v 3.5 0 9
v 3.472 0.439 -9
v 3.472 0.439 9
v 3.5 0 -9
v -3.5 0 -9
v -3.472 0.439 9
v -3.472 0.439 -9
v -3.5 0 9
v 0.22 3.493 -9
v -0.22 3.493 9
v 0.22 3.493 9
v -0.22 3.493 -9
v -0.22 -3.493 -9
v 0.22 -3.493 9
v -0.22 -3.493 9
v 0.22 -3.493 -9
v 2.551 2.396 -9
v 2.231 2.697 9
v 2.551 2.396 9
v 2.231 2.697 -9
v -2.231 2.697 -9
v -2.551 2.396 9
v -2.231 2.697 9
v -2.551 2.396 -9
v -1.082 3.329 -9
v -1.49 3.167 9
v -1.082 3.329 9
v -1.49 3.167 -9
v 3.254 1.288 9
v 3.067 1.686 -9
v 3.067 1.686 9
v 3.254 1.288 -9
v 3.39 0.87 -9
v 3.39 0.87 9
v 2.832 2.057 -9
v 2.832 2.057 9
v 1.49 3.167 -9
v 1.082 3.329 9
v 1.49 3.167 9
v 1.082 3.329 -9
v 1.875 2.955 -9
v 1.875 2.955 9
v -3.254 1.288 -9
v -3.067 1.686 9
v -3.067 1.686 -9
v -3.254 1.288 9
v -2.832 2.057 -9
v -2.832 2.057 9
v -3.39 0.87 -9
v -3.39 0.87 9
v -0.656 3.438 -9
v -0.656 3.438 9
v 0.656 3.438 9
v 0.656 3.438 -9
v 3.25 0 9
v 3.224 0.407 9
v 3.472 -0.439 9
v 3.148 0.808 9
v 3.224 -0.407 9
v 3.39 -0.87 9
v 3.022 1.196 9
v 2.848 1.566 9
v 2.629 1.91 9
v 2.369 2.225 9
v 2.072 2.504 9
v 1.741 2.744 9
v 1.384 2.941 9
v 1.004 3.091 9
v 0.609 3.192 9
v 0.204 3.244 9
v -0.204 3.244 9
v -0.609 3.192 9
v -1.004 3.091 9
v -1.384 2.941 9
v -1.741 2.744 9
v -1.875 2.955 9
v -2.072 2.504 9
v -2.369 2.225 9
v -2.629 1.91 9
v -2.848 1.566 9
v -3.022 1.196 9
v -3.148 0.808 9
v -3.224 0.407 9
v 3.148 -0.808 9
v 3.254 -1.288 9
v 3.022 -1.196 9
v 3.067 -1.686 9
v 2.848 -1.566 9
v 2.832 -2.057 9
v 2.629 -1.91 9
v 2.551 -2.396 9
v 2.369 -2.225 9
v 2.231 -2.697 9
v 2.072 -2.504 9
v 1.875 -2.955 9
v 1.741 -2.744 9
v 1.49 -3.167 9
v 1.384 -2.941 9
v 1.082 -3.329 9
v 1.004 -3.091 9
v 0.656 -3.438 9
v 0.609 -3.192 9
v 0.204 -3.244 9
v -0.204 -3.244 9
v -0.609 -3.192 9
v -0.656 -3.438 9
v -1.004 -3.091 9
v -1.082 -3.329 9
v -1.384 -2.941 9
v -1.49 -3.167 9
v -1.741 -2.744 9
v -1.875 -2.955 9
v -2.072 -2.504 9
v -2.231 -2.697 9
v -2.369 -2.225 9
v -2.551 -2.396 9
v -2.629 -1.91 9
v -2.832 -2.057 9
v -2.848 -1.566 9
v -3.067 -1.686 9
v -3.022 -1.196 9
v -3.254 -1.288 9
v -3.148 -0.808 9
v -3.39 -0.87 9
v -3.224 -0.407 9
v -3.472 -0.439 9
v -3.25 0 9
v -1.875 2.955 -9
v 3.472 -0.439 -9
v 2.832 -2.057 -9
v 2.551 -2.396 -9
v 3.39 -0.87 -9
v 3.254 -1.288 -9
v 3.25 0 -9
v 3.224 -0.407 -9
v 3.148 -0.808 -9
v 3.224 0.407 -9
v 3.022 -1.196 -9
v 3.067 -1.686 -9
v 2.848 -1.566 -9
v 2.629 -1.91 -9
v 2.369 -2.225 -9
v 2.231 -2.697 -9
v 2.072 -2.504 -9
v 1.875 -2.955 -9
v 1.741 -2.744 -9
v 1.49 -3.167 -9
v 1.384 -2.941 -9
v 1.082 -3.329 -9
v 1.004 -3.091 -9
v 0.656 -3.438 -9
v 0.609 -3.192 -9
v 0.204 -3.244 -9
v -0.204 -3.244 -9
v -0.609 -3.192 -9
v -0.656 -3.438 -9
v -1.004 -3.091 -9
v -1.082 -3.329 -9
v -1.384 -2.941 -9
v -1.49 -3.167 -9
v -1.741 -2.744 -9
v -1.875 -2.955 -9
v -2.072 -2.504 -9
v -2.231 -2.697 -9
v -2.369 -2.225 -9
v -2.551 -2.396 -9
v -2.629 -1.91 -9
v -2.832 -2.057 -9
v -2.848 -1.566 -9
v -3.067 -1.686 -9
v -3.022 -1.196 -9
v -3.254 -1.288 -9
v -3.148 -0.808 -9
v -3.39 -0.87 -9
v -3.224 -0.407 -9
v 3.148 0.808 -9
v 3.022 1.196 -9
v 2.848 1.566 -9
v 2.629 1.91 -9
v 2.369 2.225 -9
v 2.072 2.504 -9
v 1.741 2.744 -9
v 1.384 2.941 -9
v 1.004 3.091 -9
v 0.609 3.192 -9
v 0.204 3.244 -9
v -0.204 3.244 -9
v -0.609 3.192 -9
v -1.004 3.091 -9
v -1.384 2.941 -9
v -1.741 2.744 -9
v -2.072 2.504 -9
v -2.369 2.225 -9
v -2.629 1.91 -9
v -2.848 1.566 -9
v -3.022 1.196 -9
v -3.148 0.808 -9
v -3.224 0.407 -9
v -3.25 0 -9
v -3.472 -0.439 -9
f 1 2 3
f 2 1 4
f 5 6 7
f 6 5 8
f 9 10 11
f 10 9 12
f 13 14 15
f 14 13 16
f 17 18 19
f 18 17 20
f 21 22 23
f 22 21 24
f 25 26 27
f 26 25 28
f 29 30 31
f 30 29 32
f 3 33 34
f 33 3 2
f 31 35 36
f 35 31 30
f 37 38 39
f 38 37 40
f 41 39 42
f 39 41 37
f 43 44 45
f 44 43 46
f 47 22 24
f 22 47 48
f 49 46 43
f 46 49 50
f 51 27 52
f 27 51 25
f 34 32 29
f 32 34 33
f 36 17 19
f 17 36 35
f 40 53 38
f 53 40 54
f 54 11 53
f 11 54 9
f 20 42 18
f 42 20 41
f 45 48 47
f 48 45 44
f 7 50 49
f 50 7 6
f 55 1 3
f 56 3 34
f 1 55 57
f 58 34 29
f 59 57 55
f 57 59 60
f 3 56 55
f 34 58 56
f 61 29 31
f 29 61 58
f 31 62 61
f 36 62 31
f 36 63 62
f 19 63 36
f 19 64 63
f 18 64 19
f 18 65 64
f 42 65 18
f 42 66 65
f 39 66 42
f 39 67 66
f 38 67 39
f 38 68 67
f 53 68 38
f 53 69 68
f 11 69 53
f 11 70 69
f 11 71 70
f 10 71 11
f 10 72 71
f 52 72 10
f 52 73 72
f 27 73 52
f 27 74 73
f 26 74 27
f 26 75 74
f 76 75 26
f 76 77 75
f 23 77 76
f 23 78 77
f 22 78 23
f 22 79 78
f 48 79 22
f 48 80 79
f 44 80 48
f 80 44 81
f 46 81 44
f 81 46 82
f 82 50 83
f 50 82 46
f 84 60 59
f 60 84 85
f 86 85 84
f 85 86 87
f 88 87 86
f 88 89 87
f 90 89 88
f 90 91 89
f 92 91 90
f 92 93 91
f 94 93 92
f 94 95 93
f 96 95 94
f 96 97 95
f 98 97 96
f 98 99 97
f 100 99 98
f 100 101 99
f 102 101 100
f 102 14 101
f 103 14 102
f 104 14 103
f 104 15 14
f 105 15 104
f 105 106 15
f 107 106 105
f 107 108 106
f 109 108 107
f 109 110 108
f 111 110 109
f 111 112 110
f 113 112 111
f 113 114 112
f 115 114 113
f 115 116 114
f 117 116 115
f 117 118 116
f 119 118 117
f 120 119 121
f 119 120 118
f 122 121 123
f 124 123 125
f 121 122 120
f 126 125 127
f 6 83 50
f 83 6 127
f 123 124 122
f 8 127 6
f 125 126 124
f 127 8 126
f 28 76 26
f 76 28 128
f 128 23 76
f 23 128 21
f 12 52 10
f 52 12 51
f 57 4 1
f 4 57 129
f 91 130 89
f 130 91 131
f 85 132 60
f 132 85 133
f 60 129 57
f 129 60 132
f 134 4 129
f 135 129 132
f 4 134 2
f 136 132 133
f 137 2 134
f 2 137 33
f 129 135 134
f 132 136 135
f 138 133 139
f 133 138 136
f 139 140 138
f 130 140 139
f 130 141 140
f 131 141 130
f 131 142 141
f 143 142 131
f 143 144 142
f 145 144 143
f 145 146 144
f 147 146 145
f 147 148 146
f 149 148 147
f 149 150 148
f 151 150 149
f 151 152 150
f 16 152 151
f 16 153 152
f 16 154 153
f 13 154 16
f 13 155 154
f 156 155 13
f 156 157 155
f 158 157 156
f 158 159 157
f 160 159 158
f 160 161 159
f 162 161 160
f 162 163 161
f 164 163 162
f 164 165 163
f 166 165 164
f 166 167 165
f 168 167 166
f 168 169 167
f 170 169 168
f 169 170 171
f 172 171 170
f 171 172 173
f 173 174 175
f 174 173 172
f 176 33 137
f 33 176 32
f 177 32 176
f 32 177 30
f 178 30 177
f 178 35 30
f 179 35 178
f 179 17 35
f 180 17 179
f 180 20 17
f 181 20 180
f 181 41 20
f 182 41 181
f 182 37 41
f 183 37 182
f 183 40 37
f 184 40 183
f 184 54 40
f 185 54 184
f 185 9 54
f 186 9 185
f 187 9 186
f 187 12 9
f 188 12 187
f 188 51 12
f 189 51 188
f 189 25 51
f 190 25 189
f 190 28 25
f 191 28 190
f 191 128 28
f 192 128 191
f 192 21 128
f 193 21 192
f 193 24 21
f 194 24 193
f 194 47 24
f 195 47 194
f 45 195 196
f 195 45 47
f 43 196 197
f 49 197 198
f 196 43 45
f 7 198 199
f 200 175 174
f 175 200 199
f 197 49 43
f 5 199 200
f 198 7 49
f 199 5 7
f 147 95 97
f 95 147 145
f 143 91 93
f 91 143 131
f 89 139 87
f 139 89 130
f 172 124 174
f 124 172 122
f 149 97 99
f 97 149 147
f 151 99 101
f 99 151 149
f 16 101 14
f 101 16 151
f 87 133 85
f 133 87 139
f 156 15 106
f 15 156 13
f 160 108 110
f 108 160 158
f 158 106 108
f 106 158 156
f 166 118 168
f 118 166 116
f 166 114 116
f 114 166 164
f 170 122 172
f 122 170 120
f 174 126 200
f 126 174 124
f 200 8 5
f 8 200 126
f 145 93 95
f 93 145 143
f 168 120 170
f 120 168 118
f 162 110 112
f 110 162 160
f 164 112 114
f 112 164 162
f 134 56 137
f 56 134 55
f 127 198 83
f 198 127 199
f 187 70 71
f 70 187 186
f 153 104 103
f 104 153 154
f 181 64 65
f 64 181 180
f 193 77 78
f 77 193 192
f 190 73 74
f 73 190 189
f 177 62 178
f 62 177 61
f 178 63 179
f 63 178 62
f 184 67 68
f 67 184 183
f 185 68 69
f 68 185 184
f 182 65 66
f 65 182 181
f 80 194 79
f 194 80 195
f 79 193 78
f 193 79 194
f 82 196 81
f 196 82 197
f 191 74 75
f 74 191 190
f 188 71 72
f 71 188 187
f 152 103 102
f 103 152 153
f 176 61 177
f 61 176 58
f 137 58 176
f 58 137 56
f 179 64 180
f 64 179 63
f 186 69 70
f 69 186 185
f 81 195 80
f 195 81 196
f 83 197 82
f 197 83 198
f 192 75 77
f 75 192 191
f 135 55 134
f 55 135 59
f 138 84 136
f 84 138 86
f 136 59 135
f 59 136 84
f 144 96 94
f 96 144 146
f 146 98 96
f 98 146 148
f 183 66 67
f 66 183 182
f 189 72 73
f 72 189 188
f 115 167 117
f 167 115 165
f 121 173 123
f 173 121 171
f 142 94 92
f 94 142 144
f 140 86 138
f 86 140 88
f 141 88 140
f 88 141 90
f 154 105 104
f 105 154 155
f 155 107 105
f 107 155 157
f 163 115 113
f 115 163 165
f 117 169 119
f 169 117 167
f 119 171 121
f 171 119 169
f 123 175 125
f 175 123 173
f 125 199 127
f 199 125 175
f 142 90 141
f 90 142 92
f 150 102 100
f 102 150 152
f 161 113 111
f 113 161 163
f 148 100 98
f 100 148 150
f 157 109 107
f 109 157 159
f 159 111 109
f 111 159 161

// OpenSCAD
$fn = 50;


difference() {
	union() {
		translate(v = [0, 0, -9.0000000000]) {
			cylinder(h = 18, r = 3.5000000000);
		}
	}
	union() {
		translate(v = [0, 0, -100.0000000000]) {
			cylinder(h = 200, r = 3.2500000000);
		}
	}
}
